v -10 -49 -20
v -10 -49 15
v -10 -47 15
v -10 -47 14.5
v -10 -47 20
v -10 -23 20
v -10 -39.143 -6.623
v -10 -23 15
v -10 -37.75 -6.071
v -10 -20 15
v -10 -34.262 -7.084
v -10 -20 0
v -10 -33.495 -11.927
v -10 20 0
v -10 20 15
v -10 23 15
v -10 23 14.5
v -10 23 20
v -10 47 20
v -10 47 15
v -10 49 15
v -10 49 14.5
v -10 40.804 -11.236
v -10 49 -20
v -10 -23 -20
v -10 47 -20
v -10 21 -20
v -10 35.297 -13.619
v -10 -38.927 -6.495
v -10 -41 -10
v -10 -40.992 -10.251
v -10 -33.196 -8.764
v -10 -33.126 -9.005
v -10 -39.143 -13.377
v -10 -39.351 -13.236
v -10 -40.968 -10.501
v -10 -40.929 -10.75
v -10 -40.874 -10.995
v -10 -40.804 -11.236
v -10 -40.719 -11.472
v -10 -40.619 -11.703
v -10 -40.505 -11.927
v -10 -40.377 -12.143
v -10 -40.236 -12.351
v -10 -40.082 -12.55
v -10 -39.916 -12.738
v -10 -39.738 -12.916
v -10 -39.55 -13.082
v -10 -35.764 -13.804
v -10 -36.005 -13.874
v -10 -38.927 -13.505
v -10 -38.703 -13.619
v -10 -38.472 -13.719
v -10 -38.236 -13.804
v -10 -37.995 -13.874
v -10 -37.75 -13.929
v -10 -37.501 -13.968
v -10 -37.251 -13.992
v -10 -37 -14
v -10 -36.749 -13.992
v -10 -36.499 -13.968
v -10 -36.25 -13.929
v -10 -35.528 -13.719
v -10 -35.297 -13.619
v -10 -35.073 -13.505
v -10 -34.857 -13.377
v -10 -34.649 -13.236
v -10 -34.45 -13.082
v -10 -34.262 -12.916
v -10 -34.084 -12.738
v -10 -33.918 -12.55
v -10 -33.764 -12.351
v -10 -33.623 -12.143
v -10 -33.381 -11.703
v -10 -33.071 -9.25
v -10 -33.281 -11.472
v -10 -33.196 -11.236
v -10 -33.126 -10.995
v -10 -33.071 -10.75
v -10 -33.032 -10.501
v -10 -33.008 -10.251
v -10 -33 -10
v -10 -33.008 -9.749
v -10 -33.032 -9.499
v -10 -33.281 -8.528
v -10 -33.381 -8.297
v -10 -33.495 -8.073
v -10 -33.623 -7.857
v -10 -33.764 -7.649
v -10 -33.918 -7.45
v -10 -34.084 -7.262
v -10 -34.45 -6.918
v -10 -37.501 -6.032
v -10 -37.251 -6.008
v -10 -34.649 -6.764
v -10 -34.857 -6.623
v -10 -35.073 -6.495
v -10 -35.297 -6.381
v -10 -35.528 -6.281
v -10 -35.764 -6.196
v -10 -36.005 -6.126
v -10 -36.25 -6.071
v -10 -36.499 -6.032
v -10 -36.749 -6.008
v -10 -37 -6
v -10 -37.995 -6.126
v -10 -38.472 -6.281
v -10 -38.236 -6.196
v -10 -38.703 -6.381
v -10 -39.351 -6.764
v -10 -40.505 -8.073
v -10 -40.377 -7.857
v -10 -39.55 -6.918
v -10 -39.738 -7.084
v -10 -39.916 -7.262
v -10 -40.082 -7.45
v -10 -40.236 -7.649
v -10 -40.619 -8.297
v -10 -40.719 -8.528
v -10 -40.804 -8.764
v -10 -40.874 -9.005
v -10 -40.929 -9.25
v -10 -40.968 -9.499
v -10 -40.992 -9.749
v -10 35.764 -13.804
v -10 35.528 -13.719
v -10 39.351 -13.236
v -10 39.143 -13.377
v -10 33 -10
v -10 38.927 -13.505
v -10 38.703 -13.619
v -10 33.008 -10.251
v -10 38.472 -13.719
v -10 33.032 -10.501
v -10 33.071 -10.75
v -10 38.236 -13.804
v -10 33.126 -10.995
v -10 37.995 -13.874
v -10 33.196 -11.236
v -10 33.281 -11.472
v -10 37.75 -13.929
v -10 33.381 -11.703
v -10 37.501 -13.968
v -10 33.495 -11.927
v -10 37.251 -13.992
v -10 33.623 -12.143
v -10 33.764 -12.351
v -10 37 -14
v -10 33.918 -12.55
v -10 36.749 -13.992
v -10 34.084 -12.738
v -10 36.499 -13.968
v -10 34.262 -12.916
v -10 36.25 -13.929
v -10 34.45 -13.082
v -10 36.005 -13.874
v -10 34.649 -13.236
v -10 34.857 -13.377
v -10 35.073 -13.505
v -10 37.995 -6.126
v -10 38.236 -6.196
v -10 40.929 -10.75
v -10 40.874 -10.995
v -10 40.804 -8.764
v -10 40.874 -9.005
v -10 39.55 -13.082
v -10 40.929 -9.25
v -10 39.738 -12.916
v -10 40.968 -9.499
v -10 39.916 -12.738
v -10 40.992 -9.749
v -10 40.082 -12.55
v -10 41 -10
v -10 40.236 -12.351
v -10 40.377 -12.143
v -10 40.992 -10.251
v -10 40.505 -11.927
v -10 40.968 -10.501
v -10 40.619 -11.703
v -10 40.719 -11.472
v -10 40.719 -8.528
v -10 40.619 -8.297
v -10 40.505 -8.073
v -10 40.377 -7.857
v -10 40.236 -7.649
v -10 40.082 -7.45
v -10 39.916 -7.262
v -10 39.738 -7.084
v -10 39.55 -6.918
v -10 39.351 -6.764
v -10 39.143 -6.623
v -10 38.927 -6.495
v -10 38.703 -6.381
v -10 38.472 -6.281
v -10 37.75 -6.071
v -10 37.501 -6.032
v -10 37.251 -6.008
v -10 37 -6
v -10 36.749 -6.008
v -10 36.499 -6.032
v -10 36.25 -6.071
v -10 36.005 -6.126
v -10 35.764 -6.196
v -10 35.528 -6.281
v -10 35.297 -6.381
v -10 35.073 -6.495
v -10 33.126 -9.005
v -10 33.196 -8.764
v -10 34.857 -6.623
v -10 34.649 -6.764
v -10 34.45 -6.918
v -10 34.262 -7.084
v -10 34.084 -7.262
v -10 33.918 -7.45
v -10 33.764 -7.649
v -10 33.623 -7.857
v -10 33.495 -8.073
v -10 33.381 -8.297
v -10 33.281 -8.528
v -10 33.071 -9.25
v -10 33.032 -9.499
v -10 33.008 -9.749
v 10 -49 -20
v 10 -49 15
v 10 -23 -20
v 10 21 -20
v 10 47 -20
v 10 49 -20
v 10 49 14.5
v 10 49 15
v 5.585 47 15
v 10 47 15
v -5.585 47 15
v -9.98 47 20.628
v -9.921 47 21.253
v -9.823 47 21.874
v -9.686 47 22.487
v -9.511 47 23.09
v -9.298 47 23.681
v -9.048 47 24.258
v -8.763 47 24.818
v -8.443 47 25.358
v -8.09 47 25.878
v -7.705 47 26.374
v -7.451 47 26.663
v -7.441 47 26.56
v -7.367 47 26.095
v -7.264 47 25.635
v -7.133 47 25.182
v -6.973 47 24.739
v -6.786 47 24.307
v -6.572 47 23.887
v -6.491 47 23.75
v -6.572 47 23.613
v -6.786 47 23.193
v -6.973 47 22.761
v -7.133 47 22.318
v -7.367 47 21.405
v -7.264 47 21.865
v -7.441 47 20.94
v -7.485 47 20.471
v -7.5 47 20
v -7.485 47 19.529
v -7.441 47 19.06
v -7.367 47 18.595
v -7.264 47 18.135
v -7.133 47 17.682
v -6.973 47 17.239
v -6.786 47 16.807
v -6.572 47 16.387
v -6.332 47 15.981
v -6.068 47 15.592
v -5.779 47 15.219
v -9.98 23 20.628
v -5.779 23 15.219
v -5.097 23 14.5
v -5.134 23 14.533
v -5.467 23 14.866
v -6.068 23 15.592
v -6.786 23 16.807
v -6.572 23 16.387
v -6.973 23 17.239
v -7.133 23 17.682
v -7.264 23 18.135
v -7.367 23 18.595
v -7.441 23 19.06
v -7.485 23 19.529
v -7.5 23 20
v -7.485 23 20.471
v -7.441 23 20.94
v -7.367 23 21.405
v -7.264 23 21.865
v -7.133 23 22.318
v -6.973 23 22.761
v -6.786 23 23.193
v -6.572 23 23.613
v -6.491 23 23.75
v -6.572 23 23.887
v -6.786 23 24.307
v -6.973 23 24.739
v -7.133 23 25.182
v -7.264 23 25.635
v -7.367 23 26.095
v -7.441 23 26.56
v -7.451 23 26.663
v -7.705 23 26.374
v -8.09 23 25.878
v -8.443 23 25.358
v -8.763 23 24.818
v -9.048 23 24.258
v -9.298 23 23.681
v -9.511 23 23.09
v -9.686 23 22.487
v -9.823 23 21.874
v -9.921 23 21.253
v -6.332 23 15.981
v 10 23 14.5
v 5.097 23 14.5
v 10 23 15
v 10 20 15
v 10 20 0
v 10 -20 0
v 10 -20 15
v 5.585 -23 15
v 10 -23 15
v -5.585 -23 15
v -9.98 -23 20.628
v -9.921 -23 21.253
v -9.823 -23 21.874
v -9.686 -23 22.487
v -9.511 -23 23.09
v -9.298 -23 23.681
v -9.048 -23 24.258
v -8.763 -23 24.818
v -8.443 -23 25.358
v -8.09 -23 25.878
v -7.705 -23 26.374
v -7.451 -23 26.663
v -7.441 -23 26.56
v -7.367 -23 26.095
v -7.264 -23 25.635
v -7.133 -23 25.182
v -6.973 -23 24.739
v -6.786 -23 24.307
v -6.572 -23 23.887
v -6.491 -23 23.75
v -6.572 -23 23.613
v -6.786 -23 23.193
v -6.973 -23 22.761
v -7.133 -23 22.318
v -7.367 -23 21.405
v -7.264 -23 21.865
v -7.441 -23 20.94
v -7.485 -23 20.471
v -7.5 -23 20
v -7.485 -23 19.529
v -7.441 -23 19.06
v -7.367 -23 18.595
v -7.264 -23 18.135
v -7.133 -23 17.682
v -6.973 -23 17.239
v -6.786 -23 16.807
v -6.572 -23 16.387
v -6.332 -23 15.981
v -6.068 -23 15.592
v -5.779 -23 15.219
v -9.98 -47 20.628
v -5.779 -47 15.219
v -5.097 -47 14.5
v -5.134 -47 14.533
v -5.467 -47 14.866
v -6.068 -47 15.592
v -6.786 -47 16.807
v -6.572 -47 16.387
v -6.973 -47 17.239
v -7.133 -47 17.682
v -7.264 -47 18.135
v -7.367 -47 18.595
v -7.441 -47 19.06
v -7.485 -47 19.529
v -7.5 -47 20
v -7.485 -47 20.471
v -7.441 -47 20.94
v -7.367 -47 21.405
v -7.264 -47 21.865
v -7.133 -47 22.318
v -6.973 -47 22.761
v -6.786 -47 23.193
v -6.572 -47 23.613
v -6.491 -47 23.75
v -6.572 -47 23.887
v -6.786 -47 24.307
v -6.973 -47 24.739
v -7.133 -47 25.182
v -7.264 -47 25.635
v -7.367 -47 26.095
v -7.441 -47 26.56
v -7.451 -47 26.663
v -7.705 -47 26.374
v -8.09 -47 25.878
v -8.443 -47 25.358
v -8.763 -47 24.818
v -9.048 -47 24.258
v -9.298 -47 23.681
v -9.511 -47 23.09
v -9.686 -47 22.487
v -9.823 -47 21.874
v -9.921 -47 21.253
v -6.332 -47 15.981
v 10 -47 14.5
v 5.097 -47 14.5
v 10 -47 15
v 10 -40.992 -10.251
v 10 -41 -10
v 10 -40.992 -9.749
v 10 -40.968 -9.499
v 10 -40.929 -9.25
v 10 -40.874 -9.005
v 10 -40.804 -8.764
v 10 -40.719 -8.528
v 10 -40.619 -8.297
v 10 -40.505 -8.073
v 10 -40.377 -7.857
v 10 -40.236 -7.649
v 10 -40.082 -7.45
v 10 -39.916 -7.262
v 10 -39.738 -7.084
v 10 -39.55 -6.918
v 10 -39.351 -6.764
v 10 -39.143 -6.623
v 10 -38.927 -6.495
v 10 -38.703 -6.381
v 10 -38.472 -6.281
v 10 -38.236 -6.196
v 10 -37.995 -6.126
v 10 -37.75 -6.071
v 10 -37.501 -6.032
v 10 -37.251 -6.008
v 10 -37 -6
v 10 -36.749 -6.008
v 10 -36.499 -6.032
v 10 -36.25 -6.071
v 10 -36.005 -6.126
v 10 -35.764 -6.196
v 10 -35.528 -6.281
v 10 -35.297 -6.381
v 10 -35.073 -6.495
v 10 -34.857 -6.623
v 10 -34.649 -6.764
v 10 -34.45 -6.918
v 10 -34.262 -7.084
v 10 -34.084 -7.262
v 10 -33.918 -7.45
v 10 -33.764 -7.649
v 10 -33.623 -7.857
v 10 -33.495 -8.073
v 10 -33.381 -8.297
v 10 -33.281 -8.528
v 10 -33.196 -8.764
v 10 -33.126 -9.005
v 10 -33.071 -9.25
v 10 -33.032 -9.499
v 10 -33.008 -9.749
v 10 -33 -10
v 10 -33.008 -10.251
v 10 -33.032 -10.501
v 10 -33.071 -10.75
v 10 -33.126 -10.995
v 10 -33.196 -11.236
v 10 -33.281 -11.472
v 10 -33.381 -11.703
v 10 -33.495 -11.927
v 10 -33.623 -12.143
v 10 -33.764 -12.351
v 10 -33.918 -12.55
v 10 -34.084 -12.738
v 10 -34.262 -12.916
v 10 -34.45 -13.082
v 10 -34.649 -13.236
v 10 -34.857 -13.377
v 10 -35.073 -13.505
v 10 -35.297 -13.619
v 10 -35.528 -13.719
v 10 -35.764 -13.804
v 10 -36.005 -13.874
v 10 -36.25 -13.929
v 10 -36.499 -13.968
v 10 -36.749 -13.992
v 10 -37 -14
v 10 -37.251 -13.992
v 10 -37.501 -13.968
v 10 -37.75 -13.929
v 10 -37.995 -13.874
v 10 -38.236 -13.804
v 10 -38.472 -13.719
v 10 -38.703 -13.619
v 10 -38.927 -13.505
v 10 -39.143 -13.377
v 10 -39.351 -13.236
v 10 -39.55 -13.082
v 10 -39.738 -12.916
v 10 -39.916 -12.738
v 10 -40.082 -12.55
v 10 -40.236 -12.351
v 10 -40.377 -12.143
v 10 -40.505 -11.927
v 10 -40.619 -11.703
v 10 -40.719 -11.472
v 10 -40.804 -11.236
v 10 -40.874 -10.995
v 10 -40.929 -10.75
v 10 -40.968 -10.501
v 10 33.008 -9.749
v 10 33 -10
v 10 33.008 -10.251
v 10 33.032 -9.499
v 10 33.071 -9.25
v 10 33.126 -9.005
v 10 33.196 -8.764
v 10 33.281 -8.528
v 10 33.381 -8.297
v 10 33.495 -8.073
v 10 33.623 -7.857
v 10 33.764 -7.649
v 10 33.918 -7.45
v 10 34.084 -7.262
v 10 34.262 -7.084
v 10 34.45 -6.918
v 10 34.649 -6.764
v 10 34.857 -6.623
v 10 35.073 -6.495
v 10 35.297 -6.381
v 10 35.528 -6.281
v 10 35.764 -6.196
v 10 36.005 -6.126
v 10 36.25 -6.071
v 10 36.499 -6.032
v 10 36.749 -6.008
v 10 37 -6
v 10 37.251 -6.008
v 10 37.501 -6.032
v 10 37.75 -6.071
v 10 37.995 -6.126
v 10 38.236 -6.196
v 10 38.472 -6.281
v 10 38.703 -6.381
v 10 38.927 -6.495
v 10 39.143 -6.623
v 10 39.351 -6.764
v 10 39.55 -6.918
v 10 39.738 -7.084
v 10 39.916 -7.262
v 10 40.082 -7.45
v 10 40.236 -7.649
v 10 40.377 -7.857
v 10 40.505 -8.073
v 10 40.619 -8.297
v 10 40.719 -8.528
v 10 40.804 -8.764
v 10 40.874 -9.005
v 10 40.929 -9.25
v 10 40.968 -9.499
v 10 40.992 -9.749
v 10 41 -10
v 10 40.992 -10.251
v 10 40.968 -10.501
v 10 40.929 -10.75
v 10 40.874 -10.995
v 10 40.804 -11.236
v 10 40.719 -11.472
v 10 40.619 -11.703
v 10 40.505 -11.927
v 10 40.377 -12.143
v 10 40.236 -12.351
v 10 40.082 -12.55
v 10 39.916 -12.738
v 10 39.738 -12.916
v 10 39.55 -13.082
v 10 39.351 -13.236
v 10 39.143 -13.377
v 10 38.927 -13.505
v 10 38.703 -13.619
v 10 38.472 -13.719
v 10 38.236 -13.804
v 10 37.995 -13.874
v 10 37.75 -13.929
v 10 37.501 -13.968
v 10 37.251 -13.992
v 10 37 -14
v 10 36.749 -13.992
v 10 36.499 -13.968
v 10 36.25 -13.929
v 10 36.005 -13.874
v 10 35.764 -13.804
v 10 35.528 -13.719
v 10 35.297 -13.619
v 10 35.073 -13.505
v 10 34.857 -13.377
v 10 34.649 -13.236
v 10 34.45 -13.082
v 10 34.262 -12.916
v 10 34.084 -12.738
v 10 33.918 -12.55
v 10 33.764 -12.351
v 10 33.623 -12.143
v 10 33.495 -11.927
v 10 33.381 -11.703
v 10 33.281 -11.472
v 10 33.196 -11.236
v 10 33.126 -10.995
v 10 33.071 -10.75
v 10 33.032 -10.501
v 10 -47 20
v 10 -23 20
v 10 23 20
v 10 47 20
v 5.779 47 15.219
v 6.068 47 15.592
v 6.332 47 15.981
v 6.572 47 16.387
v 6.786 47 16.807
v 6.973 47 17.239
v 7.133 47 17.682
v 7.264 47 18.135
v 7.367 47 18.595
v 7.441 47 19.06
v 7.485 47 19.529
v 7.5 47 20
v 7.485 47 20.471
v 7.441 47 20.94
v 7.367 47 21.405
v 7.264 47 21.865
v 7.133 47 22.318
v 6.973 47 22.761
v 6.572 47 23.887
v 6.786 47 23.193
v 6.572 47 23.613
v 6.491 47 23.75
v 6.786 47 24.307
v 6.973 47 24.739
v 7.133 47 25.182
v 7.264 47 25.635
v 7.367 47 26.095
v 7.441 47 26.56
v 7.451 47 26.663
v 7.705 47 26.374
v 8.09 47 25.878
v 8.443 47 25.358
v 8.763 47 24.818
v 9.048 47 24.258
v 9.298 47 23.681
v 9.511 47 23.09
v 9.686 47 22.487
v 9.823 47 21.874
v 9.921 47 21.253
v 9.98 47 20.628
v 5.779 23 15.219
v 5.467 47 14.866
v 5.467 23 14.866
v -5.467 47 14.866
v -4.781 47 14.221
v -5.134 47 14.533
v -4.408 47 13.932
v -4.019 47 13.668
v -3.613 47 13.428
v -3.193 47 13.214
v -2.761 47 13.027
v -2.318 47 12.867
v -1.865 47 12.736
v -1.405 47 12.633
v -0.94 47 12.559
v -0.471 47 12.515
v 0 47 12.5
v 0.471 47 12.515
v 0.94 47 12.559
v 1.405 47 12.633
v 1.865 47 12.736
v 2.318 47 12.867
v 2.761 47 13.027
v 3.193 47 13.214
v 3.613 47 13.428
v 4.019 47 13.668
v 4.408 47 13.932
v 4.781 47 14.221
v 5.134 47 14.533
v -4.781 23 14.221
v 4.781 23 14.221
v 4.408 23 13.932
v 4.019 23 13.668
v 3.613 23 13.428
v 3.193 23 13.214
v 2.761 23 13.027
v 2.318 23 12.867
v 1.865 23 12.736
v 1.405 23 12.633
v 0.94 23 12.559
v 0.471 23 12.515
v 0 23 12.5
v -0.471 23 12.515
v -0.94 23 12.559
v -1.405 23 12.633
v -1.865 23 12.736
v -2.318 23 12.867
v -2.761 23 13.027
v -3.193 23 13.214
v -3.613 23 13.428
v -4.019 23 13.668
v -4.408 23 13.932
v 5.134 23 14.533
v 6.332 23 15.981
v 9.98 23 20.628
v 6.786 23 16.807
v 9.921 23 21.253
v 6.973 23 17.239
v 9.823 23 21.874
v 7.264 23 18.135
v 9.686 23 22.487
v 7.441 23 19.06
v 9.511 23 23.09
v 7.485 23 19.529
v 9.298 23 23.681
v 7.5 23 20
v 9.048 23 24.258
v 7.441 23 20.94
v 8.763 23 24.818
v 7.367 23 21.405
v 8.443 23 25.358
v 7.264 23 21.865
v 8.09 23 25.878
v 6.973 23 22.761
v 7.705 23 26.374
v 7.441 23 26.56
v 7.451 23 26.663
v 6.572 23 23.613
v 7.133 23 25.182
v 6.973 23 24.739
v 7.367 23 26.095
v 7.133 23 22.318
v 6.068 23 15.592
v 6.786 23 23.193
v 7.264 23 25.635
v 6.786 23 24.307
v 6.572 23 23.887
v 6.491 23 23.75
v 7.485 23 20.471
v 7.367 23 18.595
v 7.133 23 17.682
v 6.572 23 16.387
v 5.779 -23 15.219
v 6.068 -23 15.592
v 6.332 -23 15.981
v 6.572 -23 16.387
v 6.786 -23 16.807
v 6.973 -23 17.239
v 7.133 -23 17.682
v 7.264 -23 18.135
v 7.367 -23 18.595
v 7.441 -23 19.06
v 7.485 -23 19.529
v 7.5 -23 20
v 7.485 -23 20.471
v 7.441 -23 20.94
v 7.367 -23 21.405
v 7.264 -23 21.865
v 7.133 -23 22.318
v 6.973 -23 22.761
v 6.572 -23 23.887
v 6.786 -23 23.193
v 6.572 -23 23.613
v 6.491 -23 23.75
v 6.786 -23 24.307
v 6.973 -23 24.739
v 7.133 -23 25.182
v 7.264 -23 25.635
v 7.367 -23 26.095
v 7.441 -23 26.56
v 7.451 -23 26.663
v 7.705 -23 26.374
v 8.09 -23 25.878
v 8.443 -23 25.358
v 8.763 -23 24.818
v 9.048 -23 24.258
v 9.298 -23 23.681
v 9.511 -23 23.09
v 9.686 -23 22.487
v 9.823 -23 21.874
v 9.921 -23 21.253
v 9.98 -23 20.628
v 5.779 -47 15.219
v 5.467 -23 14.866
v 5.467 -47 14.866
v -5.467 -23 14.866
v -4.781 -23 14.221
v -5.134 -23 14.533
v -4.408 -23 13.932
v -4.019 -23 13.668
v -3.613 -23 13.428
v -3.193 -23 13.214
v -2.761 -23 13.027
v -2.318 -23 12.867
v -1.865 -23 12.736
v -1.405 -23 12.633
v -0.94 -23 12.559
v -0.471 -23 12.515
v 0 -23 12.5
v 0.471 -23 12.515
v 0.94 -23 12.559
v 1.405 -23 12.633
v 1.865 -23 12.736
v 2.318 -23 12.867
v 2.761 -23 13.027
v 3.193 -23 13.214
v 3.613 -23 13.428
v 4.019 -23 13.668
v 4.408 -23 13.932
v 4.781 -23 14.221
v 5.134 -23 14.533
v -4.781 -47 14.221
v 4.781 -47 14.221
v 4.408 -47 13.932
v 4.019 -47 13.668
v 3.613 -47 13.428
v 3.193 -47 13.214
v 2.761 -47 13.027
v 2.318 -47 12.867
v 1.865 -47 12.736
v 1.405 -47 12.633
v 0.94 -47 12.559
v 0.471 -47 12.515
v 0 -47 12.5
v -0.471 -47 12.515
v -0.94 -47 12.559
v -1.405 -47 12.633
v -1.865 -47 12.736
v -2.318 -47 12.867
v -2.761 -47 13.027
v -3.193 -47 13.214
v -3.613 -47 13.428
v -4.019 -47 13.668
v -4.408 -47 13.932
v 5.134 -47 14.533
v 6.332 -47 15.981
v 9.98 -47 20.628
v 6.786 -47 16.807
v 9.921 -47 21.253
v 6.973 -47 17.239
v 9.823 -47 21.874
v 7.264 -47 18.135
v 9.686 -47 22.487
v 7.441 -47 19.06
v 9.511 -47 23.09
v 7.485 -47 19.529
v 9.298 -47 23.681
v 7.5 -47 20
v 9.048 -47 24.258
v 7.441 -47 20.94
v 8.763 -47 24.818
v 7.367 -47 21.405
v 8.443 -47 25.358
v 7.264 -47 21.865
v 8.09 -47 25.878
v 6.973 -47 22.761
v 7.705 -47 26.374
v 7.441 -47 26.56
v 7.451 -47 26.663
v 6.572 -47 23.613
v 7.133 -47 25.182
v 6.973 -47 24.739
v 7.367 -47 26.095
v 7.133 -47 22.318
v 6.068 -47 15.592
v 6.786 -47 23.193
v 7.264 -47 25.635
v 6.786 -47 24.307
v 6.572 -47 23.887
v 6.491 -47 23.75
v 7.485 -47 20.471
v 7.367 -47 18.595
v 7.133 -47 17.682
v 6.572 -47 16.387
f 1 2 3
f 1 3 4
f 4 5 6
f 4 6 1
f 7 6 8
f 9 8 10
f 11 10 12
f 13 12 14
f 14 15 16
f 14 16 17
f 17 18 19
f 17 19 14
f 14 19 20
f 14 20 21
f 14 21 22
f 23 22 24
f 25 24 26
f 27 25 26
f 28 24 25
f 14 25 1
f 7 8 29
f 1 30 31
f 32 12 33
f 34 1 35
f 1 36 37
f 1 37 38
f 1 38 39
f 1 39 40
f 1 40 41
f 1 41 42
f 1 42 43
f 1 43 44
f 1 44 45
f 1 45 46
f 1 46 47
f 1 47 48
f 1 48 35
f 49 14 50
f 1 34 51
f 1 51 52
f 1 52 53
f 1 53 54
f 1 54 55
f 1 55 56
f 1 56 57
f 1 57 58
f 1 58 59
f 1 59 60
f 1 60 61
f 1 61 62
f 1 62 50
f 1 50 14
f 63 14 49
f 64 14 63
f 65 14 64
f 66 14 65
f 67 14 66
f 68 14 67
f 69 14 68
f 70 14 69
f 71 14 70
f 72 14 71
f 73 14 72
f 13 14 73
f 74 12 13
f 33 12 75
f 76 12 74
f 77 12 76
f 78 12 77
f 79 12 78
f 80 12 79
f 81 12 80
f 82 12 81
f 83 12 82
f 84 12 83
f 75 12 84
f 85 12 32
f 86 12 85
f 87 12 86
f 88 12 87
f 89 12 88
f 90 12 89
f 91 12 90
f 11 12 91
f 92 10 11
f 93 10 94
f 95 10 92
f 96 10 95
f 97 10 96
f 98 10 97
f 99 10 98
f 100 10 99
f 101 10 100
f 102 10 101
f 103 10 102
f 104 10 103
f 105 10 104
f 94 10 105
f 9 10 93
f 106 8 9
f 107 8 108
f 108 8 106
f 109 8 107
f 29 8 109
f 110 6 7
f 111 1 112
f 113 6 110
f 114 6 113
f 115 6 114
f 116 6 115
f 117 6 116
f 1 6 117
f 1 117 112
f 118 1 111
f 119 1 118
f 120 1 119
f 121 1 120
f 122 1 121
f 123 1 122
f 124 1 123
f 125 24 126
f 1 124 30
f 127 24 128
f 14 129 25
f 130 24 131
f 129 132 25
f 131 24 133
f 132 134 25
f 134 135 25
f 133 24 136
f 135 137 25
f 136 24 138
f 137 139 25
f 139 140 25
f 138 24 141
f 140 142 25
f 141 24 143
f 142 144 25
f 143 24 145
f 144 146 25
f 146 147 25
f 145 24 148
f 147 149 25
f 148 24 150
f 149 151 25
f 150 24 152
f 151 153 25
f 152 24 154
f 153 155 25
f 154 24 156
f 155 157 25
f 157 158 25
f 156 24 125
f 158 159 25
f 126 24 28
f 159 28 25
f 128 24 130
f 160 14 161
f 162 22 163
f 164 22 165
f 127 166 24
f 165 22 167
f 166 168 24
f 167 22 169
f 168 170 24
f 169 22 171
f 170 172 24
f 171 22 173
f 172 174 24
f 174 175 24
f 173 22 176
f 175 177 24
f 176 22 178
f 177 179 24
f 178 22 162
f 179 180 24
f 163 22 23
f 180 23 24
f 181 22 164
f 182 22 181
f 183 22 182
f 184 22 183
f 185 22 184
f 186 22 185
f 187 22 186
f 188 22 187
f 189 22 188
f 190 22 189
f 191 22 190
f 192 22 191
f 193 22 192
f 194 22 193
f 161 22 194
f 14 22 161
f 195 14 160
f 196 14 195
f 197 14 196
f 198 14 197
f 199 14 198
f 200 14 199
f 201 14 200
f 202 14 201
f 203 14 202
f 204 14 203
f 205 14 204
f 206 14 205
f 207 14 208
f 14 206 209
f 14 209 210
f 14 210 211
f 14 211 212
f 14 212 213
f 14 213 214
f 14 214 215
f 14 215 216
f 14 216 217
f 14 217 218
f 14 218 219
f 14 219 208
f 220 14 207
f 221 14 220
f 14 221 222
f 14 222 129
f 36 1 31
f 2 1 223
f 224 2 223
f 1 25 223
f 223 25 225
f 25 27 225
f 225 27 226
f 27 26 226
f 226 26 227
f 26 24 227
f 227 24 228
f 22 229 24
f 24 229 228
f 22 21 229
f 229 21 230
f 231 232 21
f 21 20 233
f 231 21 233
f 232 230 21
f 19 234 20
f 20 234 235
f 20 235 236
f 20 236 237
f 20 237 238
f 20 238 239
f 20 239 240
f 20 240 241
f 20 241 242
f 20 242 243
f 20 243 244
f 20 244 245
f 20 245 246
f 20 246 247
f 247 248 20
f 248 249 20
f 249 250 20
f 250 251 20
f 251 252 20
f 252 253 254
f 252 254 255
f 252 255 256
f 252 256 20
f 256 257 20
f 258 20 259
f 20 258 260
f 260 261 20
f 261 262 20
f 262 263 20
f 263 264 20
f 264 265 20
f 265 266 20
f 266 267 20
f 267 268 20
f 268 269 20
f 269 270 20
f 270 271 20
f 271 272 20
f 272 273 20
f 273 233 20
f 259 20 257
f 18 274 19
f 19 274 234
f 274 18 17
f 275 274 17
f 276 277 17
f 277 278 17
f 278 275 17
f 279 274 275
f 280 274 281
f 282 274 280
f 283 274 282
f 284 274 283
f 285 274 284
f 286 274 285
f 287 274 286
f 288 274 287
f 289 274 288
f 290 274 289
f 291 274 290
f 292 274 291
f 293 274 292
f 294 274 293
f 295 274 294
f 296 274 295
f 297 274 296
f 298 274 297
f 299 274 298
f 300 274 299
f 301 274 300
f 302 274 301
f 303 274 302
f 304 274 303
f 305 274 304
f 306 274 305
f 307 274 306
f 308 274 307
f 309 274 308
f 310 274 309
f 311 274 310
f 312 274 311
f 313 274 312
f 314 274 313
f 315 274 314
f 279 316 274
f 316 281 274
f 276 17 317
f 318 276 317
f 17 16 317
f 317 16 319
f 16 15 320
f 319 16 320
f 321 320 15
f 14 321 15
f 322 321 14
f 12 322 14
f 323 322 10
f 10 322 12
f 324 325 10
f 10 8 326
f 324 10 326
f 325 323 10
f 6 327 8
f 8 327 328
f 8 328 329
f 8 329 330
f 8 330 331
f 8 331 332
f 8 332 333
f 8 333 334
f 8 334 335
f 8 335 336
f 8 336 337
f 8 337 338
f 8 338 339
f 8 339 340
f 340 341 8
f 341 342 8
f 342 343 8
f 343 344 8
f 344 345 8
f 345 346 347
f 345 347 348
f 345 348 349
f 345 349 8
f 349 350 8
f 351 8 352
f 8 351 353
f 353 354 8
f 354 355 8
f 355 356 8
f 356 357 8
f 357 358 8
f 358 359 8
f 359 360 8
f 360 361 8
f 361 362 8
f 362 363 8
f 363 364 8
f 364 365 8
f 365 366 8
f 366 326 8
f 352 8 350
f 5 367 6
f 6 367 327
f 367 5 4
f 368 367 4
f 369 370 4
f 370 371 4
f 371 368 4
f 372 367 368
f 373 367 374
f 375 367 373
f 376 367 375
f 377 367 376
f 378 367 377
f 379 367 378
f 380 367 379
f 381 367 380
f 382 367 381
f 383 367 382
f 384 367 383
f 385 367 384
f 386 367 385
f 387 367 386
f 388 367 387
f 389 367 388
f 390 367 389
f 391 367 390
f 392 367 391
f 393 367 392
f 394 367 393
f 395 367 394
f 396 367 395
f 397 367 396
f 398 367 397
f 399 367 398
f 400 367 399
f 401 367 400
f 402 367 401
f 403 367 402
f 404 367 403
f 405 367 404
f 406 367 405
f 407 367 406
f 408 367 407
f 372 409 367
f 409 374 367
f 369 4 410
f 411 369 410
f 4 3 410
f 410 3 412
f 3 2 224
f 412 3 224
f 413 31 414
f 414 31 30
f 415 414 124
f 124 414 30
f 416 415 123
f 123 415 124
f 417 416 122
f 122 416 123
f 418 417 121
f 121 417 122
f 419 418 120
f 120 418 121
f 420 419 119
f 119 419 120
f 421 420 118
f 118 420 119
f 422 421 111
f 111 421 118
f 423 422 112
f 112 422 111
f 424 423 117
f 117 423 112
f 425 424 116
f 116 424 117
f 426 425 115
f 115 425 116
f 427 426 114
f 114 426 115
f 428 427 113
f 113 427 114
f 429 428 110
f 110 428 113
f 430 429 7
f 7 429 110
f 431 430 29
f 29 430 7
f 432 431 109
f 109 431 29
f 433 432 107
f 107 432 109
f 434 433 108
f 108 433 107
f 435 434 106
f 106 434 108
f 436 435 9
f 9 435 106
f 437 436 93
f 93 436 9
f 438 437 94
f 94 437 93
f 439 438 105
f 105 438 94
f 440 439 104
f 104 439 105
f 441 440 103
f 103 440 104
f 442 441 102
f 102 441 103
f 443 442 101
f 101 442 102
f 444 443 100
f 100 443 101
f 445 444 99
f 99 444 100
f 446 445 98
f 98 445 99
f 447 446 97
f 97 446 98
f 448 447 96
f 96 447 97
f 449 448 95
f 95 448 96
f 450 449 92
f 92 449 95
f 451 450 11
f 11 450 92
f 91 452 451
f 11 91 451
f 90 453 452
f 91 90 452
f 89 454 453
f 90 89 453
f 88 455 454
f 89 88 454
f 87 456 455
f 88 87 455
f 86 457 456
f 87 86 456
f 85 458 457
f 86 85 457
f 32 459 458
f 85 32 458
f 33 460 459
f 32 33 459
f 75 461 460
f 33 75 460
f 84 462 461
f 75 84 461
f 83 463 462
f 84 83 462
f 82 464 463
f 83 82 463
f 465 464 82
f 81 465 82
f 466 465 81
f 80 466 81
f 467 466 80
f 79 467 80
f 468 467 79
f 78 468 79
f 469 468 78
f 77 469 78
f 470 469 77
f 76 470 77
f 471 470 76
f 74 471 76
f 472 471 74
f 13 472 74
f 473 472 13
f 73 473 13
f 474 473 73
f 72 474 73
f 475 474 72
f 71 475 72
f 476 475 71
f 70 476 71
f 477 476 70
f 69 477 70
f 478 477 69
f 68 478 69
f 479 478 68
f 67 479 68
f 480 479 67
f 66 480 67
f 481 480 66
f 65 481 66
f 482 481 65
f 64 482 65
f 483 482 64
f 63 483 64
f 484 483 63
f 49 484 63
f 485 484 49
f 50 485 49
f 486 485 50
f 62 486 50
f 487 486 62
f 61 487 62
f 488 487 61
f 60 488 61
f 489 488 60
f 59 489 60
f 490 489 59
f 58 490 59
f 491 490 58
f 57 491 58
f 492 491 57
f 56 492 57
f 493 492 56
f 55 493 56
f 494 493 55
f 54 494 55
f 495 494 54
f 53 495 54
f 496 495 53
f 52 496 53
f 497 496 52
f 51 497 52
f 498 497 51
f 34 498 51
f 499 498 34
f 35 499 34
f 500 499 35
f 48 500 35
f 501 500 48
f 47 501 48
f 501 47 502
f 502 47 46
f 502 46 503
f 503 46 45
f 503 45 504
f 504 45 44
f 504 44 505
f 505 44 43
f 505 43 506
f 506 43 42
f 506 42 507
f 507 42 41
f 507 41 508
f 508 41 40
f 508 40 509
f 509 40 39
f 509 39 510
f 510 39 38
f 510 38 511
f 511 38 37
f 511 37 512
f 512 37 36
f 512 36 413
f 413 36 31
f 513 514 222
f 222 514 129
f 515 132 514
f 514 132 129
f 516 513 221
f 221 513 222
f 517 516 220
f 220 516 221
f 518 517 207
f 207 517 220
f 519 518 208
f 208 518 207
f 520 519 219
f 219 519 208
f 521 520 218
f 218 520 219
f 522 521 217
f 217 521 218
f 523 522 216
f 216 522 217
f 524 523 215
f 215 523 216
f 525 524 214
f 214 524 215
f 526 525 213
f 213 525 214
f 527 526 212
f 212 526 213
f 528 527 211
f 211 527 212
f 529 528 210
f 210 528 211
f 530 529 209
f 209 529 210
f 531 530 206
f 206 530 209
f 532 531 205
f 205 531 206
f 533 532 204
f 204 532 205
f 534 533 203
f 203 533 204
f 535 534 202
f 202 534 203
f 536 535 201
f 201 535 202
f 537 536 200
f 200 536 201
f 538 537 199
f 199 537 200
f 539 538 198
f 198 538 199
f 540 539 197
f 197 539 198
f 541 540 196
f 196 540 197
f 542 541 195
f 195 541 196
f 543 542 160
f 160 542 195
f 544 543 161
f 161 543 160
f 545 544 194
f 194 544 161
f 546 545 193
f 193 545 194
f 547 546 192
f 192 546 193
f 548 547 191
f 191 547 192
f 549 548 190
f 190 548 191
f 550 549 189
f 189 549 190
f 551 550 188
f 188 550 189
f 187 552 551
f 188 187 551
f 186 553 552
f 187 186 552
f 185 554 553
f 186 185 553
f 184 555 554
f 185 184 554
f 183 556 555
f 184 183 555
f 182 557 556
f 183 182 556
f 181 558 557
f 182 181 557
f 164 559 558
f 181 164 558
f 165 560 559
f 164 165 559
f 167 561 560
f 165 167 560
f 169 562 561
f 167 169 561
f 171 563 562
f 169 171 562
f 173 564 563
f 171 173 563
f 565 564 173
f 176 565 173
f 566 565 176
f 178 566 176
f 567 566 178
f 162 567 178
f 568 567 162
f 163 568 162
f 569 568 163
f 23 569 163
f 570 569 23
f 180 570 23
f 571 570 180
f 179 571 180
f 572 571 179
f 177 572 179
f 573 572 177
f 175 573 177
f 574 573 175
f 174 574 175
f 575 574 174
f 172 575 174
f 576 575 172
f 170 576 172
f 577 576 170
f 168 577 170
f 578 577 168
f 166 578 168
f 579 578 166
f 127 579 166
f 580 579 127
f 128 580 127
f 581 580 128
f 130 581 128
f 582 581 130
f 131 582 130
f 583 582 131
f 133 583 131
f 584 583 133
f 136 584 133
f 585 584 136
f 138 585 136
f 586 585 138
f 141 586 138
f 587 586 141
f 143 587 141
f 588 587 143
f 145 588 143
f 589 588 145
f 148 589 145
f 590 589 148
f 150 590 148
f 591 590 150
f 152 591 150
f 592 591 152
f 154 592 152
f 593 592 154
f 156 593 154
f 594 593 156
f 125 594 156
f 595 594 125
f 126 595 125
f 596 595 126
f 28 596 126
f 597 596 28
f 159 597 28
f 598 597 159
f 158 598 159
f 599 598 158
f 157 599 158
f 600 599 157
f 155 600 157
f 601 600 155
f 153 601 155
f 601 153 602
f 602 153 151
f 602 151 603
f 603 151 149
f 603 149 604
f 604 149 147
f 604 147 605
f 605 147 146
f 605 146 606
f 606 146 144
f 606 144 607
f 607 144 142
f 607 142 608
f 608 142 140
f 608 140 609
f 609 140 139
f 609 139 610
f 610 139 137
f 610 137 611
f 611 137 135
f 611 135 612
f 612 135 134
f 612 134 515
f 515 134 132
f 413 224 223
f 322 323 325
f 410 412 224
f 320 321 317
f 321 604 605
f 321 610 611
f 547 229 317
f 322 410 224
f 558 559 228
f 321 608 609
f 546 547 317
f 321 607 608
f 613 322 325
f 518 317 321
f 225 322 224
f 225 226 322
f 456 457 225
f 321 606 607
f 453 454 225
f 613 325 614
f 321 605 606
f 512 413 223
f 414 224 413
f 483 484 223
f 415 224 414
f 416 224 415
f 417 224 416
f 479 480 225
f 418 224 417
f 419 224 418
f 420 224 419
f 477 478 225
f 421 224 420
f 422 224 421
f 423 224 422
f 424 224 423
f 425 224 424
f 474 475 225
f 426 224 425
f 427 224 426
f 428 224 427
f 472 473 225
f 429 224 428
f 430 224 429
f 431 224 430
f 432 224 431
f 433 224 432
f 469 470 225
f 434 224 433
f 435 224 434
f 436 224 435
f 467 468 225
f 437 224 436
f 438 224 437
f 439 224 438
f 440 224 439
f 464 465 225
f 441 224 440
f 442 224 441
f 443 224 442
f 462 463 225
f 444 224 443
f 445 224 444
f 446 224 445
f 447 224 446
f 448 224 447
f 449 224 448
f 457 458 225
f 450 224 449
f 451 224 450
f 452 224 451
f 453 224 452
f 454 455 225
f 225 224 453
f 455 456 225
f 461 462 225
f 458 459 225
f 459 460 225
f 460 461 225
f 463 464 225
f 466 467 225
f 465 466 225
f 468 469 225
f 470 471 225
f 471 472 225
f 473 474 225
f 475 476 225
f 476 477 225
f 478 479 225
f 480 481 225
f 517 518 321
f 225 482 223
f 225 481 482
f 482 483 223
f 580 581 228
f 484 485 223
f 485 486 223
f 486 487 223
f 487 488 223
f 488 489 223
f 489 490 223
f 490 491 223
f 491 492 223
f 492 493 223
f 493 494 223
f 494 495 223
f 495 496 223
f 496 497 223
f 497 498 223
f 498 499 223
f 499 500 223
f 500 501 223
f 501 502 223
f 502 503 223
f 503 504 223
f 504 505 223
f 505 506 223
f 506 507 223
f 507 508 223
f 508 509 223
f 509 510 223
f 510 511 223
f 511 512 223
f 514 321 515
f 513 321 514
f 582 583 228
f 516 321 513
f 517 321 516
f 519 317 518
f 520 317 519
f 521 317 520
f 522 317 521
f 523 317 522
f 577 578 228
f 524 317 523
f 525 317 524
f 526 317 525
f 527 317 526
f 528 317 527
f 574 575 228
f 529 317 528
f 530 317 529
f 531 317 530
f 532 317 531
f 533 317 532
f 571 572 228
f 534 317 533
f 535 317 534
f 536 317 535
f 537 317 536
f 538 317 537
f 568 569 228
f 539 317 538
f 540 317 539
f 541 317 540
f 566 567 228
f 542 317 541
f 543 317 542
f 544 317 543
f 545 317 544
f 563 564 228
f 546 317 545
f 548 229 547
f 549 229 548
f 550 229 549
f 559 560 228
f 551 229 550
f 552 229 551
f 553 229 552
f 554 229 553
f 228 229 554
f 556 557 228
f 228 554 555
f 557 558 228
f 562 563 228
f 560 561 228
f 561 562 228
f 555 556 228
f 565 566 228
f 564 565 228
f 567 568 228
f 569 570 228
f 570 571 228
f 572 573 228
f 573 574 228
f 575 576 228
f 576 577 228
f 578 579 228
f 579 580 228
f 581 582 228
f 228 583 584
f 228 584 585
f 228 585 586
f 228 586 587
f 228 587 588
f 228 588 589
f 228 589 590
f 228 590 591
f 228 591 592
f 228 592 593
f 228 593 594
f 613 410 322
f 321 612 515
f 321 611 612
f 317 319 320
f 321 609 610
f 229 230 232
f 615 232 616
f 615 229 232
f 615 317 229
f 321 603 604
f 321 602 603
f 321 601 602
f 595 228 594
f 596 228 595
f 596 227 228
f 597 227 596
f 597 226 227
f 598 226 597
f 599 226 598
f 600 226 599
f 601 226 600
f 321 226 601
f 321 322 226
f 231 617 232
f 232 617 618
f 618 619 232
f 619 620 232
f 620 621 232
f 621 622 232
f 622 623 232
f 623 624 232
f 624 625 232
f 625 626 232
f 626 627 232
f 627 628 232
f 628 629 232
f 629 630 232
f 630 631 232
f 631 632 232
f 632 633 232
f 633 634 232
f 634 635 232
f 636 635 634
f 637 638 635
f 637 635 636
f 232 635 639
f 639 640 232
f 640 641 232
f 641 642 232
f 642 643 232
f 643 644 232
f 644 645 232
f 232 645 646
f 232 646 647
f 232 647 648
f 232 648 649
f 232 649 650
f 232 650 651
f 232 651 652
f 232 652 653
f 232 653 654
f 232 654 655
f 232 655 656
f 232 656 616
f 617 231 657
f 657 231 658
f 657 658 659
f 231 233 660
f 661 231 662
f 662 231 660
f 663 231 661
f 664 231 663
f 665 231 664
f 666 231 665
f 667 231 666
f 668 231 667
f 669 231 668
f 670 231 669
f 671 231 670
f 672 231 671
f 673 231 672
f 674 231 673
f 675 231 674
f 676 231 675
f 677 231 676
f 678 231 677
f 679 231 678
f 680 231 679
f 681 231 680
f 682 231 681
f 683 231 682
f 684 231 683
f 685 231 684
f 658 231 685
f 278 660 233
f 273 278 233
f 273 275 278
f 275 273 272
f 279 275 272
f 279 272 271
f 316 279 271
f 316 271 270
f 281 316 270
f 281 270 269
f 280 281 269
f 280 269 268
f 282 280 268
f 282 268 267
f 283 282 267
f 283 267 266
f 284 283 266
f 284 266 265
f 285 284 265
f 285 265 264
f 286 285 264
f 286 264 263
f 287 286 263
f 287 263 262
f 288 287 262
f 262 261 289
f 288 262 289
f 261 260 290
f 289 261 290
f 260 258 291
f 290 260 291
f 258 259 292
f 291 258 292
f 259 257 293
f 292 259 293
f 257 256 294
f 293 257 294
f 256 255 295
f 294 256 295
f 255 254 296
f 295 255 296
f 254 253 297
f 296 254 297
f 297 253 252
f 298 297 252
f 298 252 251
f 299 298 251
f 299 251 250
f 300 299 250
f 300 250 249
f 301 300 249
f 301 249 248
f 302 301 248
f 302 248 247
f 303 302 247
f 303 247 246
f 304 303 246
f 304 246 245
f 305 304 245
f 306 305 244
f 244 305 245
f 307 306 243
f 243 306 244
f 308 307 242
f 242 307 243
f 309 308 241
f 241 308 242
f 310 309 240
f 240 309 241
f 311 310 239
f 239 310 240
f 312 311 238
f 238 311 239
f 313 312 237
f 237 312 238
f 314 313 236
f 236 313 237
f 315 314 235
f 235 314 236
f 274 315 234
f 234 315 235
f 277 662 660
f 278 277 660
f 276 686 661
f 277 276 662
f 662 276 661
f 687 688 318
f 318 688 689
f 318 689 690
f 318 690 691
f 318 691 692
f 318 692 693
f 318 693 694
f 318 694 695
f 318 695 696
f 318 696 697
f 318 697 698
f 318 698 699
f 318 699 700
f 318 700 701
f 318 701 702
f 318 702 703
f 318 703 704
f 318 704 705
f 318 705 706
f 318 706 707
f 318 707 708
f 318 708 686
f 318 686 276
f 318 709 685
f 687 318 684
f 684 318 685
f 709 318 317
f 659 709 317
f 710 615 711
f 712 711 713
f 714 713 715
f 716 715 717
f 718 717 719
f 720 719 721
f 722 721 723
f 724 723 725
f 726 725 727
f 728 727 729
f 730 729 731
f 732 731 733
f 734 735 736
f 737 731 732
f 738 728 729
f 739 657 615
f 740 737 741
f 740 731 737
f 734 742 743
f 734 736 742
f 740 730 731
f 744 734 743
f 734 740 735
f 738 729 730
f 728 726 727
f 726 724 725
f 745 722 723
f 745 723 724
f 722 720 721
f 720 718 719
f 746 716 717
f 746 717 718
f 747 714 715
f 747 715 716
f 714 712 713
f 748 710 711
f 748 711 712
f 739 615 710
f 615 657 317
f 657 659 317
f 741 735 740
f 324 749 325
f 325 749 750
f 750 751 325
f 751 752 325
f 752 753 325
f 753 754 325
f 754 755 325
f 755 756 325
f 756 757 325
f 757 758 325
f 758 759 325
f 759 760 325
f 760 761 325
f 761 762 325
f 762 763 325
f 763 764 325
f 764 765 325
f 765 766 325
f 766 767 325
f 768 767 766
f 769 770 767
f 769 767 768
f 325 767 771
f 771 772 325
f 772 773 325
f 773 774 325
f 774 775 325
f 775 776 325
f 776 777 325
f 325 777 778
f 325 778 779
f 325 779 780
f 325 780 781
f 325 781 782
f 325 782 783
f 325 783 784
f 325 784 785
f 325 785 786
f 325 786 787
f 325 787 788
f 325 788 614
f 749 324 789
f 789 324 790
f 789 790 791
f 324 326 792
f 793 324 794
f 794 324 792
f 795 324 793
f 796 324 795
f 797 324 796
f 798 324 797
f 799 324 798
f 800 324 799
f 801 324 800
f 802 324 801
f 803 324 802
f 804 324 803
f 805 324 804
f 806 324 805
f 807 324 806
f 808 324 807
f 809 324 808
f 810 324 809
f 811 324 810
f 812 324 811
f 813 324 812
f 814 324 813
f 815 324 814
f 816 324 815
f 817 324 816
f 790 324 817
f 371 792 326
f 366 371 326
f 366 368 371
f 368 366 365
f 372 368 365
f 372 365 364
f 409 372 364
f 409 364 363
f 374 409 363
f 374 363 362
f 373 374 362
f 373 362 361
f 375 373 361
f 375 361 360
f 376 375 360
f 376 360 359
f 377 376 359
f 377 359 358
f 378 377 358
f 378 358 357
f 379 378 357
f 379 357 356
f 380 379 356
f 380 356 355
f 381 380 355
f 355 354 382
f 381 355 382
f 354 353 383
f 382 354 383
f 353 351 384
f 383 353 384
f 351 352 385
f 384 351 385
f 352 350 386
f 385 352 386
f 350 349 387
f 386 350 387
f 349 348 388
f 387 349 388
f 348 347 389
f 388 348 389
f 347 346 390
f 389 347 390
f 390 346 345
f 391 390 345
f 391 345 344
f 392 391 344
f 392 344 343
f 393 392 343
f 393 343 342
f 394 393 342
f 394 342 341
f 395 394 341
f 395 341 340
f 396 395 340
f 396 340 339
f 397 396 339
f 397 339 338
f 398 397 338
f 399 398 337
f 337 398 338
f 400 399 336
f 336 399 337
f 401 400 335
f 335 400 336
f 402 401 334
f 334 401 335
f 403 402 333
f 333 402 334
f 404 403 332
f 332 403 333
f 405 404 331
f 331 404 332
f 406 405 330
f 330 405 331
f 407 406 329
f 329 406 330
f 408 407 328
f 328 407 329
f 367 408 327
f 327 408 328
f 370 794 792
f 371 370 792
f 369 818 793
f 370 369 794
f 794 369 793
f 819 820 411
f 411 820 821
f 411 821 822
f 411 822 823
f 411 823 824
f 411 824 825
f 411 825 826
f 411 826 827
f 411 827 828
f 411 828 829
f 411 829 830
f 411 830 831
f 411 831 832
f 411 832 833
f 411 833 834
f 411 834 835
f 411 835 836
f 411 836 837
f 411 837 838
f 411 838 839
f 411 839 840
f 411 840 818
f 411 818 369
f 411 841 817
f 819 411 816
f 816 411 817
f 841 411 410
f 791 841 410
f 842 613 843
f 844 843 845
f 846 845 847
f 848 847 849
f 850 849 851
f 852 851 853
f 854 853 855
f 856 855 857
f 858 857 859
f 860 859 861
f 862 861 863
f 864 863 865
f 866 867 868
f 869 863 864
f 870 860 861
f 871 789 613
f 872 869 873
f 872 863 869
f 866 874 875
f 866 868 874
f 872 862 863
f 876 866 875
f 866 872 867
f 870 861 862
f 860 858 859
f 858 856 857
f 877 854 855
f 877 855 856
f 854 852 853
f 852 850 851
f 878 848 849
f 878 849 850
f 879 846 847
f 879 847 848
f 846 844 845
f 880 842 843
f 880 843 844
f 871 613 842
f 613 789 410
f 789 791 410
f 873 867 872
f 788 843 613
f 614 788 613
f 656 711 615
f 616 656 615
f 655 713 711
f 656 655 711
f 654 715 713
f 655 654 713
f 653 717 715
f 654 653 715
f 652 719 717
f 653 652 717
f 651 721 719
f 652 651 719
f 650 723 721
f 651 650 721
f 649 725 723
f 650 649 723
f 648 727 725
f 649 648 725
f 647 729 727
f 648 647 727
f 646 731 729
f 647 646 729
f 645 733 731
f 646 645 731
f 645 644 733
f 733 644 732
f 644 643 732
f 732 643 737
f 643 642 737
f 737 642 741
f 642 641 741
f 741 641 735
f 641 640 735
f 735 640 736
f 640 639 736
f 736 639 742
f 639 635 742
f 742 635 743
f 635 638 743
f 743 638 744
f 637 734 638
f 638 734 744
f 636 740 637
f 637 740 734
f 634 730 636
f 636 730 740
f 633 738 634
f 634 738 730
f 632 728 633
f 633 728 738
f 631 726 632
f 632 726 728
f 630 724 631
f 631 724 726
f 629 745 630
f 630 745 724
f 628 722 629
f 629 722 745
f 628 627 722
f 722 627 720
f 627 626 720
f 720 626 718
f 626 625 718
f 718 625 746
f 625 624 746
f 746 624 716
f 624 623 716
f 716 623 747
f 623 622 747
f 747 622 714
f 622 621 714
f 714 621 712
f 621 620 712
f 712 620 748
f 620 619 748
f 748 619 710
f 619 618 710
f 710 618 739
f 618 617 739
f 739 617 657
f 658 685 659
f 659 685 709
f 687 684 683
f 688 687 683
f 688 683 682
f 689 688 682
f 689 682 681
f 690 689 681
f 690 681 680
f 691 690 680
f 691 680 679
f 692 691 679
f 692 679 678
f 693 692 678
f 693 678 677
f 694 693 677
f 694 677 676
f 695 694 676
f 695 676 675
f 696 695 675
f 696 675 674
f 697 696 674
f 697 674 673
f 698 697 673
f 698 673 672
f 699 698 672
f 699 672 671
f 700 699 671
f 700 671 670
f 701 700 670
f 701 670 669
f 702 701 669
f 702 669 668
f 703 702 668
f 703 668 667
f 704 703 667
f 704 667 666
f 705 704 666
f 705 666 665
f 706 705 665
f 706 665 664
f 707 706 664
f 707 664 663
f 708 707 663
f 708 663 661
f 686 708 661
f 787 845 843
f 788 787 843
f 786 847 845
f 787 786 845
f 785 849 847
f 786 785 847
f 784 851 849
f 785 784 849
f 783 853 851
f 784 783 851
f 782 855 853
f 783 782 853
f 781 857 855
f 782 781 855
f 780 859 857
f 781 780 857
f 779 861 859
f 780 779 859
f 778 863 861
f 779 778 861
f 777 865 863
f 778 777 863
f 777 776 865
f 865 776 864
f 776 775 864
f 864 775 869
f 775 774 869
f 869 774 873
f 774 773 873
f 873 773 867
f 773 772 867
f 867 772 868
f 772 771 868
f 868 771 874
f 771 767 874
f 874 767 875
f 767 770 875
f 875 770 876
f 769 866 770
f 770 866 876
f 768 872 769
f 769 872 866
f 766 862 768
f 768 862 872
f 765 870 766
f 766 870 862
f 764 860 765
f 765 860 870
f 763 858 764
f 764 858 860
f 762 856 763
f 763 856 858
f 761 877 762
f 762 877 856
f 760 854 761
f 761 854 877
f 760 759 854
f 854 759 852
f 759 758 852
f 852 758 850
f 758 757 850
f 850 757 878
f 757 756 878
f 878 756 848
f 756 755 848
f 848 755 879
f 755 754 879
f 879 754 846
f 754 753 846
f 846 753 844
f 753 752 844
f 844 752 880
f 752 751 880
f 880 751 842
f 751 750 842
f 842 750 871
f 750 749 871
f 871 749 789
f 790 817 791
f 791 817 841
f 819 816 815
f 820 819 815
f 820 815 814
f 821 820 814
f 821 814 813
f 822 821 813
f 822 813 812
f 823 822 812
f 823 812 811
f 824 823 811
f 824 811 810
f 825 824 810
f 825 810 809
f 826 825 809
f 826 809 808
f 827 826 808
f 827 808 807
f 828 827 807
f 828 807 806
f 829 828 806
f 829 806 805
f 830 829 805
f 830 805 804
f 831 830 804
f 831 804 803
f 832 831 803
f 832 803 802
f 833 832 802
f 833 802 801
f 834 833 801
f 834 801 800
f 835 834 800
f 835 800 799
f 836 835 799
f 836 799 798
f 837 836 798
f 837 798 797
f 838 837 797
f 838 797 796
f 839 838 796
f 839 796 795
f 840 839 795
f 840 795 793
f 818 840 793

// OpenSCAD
// file: lib.scad
module bearing_holder(l, h, r1, r2, holder_depth, holder_thick=2) {
	union(){
		difference(){
			union(){
				translate([-r1,0,-l/2]) cube([r1*2,h,l]);
				cylinder (h = l, r=r1, center = true, $fn=100);
			}
			cylinder (h = l, r=r2, center = true, $fn=100);
			translate([0,-r2,0]) cylinder (h = l, r=r2, center = true, $fn=100);
		}
		translate([0,(h+r2-holder_thick)/2,l/2+holder_thick/2]) cube([r1*2,h-r2+holder_thick,holder_thick], center=true);
		translate([0,(h+r2-holder_thick)/2,-(l/2+holder_thick/2)]) cube([r1*2,h-r2+holder_thick,holder_thick], center=true);
	}
}

module single_bearing_frame(r1, r2, h, l, d, holder_depth, holder_thick=2, bar_offset=false){
	difference(){
		union(){
			translate([0,0,h/2]) rotate([-90,0,0]) bearing_holder(l, h, r1, r2, holder_depth);
			translate([0,l/2+(d+l)/4,-r2/2+holder_depth/2]) cube([r1*2,(d+l)/2,h-r2+holder_depth], center=true);
			translate([0,-(l/2+(d+l)/4),-r2/2+holder_depth/2]) cube([r1*2,(d+l)/2,h-r2+holder_depth], center=true);
		}
		if (bar_offset != false){
			translate([0,-(d+l)/2,-h/2+bar_offset]) rotate([0,90,0]) cylinder(r=4, h=r1*2.5,center=true,$fn=100);
			translate([0,(d+l)/2,-h/2+bar_offset]) rotate([0,90,0]) cylinder(r=4, h=r1*2.5,center=true,$fn=100);		
		}
		translate([0,-(l/2+(d+l)/4+holder_thick/2),h/4]) cube([r1*2,(d+l)/2-holder_thick,h/2], center=true);
		translate([0,(l/2+(d+l)/4+holder_thick/2),h/4]) cube([r1*2,(d+l)/2-holder_thick,h/2], center=true);
	}
}

module double_bearing_frame(r1, r2, h, l, d, holder_depth, holder_thick=2, bar_offset=false){
	difference(){
		union(){
			translate([0,-((d+l)/2-holder_thick),h/2]) rotate([-90,0,0]) bearing_holder(l, h, r1, r2, holder_depth);
			translate([0,(d+l)/2-holder_thick,h/2]) rotate([-90,0,0]) bearing_holder(l, h, r1, r2, holder_depth);

			translate([0,0,-r2/2+holder_depth/2]) cube([r1*2,d-holder_thick*2,h-r2+holder_depth], center=true);

			translate([0,d/2+l-holder_thick/2,-r2/2+holder_depth/2]) cube([r1*2,holder_thick,h-r2+holder_depth], center=true);
			translate([0,-d/2-l+holder_thick/2,-r2/2+holder_depth/2]) cube([r1*2,holder_thick,h-r2+holder_depth], center=true);
		}
		if (bar_offset != false){
			translate([0,-(d+l)/2,-h/2+bar_offset]) rotate([0,90,0]) cylinder(r=4, h=r1*2.5,center=true,$fn=100);
			translate([0,(d+l)/2,-h/2+bar_offset]) rotate([0,90,0]) cylinder(r=4, h=r1*2.5,center=true,$fn=100);	
		}
		translate([0,0,h/4]) cube([r1*2,d-4*holder_depth,h/2], center=true);
	}
}

/*
r1 = 10;
r2 = 7.5;
h = 40;
l = 24;
d = 50;
holder_depth = 2.5;
//bearing_holder(l, h, r1, r2, holder_depth);
single_bearing_frame(r1, r2, h, l, d, holder_depth, bar_offset=10);
//double_bearing_frame(r1, r2, h, l, d, holder_depth, bar_offset=10);
/*
*/
// main file
include <lib.scad>;

r1 = 10;
r2 = 7.5;
h = 40;
l = 24;
d = 50;
holder_depth = 2.5;

double_bearing_frame(r1, r2, h, l, d, holder_depth, bar_offset=10);
